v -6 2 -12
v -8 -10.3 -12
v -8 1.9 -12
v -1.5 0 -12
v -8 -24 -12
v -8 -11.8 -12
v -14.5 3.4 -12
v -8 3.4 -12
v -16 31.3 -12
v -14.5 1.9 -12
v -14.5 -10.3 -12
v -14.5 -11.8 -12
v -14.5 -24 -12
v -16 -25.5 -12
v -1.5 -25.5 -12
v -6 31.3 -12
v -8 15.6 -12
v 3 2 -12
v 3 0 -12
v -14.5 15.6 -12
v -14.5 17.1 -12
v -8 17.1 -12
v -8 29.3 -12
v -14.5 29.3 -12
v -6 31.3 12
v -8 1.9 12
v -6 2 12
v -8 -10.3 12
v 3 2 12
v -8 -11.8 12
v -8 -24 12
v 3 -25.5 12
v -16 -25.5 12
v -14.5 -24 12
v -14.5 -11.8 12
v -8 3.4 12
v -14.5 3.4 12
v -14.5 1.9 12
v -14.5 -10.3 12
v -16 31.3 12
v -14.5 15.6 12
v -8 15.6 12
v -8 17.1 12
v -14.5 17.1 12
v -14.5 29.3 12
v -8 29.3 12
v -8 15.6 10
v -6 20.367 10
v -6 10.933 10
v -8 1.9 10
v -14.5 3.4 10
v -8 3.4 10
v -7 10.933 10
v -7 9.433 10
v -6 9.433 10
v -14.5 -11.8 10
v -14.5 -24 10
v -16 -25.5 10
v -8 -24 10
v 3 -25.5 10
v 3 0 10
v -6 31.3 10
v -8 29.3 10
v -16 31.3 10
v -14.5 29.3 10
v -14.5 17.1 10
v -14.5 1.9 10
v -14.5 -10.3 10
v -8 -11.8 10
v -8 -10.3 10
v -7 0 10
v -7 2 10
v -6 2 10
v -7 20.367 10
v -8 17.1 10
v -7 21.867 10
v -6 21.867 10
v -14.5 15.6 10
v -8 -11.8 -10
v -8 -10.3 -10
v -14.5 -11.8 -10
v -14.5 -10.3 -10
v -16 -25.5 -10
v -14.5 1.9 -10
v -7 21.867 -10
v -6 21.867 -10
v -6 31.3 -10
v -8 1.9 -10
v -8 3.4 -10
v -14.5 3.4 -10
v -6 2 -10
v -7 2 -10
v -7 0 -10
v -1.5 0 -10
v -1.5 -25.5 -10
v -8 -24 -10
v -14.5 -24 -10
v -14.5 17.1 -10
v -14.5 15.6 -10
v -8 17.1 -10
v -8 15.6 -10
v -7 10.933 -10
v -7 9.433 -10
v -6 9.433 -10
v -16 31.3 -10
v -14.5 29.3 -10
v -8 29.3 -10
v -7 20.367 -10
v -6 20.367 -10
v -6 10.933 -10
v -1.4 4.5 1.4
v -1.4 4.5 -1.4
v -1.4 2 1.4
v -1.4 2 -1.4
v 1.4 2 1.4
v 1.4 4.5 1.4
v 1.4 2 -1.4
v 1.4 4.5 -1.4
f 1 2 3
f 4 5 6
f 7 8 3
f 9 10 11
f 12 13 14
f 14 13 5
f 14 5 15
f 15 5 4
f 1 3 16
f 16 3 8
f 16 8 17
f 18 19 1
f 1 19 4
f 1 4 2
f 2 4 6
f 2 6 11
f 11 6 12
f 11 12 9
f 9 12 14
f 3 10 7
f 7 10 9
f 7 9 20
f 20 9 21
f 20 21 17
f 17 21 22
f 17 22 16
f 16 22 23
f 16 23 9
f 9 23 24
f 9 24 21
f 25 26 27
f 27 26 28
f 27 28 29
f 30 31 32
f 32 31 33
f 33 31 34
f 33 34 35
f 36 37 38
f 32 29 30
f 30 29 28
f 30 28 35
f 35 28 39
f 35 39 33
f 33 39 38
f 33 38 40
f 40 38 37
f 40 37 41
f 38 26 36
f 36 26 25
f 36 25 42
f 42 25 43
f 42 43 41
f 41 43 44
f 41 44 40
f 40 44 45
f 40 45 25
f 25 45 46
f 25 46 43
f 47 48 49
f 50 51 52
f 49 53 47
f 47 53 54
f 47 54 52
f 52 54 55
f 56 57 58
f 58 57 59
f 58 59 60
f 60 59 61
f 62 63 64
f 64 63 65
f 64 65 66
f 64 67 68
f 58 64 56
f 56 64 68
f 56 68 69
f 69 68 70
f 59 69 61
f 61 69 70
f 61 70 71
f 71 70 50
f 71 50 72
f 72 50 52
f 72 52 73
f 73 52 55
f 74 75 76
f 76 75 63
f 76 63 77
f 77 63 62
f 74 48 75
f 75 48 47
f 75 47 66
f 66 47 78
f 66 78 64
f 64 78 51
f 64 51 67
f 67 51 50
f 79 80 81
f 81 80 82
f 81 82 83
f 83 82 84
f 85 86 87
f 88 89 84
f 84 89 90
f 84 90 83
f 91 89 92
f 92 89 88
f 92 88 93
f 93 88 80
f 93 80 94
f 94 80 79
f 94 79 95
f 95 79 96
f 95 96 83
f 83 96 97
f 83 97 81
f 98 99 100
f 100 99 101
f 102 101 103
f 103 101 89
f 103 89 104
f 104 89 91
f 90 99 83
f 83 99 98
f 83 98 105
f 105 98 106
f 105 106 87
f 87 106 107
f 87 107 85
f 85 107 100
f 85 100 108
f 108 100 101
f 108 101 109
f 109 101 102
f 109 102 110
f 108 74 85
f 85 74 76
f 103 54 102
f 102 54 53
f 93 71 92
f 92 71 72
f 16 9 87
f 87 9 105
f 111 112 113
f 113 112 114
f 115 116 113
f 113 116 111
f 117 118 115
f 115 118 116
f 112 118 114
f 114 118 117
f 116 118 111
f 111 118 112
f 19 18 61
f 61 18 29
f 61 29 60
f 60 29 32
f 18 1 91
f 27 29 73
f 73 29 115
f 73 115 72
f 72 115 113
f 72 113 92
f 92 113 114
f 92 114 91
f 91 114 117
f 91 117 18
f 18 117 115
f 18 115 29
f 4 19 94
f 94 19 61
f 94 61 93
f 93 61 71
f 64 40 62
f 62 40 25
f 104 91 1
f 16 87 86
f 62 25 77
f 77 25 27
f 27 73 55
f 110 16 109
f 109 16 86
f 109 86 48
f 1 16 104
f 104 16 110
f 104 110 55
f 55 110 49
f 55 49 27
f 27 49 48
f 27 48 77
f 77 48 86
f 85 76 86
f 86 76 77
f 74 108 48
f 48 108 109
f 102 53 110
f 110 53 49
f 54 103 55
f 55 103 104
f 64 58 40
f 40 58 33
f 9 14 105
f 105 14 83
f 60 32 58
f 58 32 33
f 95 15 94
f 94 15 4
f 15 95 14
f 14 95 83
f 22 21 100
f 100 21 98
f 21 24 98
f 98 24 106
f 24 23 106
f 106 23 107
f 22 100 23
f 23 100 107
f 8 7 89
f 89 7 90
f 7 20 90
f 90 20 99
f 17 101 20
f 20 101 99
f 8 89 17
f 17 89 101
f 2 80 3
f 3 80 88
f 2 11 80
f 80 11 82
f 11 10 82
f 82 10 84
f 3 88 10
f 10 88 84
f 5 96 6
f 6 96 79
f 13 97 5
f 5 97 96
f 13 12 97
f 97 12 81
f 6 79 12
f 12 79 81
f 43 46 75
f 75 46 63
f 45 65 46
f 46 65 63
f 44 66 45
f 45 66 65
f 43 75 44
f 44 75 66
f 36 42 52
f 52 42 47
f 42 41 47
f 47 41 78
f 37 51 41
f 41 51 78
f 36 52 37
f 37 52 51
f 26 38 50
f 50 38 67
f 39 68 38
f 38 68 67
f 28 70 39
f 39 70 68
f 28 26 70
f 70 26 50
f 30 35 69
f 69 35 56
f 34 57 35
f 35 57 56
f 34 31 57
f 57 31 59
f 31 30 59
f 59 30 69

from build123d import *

# Parameters (mm, degrees)
SKETCH_1_W          = 2.8
SKETCH_1_H          = 2.8
EXTRUDE_1_DEPTH     = 4.5
SKETCH_2_W          = 9
SKETCH_2_H          = 24
EXTRUDE_2_DEPTH     = 2
SKETCH_3_W          = 24
SKETCH_3_H          = 31.3
EXTRUDE_3_DEPTH     = 1
SKETCH_3_3_W        = 20
SKETCH_3_3_H        = 7.433333333
SKETCH_3_3_H_2      = 9.433333334
SKETCH_3_3_H_3      = 9.433333333
CUT_EXTRUDE_1_DEPTH = 35.708644456
SKETCH_3_4_W        = 2
SKETCH_3_4_H        = 31.3
EXTRUDE_4_DEPTH     = 10
SKETCH_5_W          = 19
SKETCH_5_H          = 2
SKETCH_5_W_2        = 14.5
EXTRUDE_5_DEPTH     = 25.5
SKETCH_6_W          = 6.5
SKETCH_6_H          = 12.2
CUT_EXTRUDE_2_DEPTH = 43.563951884


with BuildPart() as part:
    # 草图1 → 凸台-拉伸1 (new body)
    with BuildSketch(Plane(origin=(0, 0, 0), x_dir=(1, 0, 0), z_dir=(0, 1, 0))):
        Rectangle(SKETCH_1_W, SKETCH_1_H)
    extrude(amount=EXTRUDE_1_DEPTH)

    # 草图2 → 凸台-拉伸2 (add)
    with BuildSketch(Plane.XZ):
        with Locations((-1.5, 0)):
            Rectangle(SKETCH_2_W, SKETCH_2_H)
    extrude(amount=-EXTRUDE_2_DEPTH)

    # 草图3 → 凸台-拉伸3 (add)
    with BuildSketch(Plane.ZY.offset(6)):
        with Locations((0, 15.65)):
            Rectangle(SKETCH_3_W, SKETCH_3_H)
    extrude(amount=EXTRUDE_3_DEPTH)

    # 草图3<3> → 切除-拉伸1 (cut, through all)
    with BuildSketch(Plane.ZY.offset(6)):
        with Locations((0, 5.716666667)):
            Rectangle(SKETCH_3_3_W, SKETCH_3_3_H)
        with Locations((0, 15.65)):
            Rectangle(SKETCH_3_3_W, SKETCH_3_3_H_2)
        with Locations((0, 26.583333334)):
            Rectangle(SKETCH_3_3_W, SKETCH_3_3_H_3)
    extrude(amount=CUT_EXTRUDE_1_DEPTH, mode=Mode.SUBTRACT)

    # 草图3<4> → 凸台-拉伸4 (add)
    with BuildSketch(Plane.ZY.offset(6)):
        with Locations((11, 15.65)):
            Rectangle(SKETCH_3_4_W, SKETCH_3_4_H)
        with Locations((-11, 15.65)):
            Rectangle(SKETCH_3_4_W, SKETCH_3_4_H)
    extrude(amount=EXTRUDE_4_DEPTH)

    # 草图5 → 凸台-拉伸5 (add)
    with BuildSketch(Plane.XZ):
        with Locations((-6.5, 11)):
            Rectangle(SKETCH_5_W, SKETCH_5_H)
        with Locations((-8.75, -11)):
            Rectangle(SKETCH_5_W_2, SKETCH_5_H)
    extrude(amount=EXTRUDE_5_DEPTH)

    # 草图6 → 切除-拉伸2 (cut, through all)
    with BuildSketch(Plane(origin=(0, 0, -12), x_dir=(-1, 0, 0), z_dir=(0, 0, -1))):
        with Locations((11.25, -17.9)):
            Rectangle(SKETCH_6_W, SKETCH_6_H)
        with Locations((11.25, -4.2)):
            Rectangle(SKETCH_6_W, SKETCH_6_H)
        with Locations((11.25, 9.5)):
            Rectangle(SKETCH_6_W, SKETCH_6_H)
        with Locations((11.25, 23.2)):
            Rectangle(SKETCH_6_W, SKETCH_6_H)
    extrude(amount=-CUT_EXTRUDE_2_DEPTH, mode=Mode.SUBTRACT)


solid = part.part
